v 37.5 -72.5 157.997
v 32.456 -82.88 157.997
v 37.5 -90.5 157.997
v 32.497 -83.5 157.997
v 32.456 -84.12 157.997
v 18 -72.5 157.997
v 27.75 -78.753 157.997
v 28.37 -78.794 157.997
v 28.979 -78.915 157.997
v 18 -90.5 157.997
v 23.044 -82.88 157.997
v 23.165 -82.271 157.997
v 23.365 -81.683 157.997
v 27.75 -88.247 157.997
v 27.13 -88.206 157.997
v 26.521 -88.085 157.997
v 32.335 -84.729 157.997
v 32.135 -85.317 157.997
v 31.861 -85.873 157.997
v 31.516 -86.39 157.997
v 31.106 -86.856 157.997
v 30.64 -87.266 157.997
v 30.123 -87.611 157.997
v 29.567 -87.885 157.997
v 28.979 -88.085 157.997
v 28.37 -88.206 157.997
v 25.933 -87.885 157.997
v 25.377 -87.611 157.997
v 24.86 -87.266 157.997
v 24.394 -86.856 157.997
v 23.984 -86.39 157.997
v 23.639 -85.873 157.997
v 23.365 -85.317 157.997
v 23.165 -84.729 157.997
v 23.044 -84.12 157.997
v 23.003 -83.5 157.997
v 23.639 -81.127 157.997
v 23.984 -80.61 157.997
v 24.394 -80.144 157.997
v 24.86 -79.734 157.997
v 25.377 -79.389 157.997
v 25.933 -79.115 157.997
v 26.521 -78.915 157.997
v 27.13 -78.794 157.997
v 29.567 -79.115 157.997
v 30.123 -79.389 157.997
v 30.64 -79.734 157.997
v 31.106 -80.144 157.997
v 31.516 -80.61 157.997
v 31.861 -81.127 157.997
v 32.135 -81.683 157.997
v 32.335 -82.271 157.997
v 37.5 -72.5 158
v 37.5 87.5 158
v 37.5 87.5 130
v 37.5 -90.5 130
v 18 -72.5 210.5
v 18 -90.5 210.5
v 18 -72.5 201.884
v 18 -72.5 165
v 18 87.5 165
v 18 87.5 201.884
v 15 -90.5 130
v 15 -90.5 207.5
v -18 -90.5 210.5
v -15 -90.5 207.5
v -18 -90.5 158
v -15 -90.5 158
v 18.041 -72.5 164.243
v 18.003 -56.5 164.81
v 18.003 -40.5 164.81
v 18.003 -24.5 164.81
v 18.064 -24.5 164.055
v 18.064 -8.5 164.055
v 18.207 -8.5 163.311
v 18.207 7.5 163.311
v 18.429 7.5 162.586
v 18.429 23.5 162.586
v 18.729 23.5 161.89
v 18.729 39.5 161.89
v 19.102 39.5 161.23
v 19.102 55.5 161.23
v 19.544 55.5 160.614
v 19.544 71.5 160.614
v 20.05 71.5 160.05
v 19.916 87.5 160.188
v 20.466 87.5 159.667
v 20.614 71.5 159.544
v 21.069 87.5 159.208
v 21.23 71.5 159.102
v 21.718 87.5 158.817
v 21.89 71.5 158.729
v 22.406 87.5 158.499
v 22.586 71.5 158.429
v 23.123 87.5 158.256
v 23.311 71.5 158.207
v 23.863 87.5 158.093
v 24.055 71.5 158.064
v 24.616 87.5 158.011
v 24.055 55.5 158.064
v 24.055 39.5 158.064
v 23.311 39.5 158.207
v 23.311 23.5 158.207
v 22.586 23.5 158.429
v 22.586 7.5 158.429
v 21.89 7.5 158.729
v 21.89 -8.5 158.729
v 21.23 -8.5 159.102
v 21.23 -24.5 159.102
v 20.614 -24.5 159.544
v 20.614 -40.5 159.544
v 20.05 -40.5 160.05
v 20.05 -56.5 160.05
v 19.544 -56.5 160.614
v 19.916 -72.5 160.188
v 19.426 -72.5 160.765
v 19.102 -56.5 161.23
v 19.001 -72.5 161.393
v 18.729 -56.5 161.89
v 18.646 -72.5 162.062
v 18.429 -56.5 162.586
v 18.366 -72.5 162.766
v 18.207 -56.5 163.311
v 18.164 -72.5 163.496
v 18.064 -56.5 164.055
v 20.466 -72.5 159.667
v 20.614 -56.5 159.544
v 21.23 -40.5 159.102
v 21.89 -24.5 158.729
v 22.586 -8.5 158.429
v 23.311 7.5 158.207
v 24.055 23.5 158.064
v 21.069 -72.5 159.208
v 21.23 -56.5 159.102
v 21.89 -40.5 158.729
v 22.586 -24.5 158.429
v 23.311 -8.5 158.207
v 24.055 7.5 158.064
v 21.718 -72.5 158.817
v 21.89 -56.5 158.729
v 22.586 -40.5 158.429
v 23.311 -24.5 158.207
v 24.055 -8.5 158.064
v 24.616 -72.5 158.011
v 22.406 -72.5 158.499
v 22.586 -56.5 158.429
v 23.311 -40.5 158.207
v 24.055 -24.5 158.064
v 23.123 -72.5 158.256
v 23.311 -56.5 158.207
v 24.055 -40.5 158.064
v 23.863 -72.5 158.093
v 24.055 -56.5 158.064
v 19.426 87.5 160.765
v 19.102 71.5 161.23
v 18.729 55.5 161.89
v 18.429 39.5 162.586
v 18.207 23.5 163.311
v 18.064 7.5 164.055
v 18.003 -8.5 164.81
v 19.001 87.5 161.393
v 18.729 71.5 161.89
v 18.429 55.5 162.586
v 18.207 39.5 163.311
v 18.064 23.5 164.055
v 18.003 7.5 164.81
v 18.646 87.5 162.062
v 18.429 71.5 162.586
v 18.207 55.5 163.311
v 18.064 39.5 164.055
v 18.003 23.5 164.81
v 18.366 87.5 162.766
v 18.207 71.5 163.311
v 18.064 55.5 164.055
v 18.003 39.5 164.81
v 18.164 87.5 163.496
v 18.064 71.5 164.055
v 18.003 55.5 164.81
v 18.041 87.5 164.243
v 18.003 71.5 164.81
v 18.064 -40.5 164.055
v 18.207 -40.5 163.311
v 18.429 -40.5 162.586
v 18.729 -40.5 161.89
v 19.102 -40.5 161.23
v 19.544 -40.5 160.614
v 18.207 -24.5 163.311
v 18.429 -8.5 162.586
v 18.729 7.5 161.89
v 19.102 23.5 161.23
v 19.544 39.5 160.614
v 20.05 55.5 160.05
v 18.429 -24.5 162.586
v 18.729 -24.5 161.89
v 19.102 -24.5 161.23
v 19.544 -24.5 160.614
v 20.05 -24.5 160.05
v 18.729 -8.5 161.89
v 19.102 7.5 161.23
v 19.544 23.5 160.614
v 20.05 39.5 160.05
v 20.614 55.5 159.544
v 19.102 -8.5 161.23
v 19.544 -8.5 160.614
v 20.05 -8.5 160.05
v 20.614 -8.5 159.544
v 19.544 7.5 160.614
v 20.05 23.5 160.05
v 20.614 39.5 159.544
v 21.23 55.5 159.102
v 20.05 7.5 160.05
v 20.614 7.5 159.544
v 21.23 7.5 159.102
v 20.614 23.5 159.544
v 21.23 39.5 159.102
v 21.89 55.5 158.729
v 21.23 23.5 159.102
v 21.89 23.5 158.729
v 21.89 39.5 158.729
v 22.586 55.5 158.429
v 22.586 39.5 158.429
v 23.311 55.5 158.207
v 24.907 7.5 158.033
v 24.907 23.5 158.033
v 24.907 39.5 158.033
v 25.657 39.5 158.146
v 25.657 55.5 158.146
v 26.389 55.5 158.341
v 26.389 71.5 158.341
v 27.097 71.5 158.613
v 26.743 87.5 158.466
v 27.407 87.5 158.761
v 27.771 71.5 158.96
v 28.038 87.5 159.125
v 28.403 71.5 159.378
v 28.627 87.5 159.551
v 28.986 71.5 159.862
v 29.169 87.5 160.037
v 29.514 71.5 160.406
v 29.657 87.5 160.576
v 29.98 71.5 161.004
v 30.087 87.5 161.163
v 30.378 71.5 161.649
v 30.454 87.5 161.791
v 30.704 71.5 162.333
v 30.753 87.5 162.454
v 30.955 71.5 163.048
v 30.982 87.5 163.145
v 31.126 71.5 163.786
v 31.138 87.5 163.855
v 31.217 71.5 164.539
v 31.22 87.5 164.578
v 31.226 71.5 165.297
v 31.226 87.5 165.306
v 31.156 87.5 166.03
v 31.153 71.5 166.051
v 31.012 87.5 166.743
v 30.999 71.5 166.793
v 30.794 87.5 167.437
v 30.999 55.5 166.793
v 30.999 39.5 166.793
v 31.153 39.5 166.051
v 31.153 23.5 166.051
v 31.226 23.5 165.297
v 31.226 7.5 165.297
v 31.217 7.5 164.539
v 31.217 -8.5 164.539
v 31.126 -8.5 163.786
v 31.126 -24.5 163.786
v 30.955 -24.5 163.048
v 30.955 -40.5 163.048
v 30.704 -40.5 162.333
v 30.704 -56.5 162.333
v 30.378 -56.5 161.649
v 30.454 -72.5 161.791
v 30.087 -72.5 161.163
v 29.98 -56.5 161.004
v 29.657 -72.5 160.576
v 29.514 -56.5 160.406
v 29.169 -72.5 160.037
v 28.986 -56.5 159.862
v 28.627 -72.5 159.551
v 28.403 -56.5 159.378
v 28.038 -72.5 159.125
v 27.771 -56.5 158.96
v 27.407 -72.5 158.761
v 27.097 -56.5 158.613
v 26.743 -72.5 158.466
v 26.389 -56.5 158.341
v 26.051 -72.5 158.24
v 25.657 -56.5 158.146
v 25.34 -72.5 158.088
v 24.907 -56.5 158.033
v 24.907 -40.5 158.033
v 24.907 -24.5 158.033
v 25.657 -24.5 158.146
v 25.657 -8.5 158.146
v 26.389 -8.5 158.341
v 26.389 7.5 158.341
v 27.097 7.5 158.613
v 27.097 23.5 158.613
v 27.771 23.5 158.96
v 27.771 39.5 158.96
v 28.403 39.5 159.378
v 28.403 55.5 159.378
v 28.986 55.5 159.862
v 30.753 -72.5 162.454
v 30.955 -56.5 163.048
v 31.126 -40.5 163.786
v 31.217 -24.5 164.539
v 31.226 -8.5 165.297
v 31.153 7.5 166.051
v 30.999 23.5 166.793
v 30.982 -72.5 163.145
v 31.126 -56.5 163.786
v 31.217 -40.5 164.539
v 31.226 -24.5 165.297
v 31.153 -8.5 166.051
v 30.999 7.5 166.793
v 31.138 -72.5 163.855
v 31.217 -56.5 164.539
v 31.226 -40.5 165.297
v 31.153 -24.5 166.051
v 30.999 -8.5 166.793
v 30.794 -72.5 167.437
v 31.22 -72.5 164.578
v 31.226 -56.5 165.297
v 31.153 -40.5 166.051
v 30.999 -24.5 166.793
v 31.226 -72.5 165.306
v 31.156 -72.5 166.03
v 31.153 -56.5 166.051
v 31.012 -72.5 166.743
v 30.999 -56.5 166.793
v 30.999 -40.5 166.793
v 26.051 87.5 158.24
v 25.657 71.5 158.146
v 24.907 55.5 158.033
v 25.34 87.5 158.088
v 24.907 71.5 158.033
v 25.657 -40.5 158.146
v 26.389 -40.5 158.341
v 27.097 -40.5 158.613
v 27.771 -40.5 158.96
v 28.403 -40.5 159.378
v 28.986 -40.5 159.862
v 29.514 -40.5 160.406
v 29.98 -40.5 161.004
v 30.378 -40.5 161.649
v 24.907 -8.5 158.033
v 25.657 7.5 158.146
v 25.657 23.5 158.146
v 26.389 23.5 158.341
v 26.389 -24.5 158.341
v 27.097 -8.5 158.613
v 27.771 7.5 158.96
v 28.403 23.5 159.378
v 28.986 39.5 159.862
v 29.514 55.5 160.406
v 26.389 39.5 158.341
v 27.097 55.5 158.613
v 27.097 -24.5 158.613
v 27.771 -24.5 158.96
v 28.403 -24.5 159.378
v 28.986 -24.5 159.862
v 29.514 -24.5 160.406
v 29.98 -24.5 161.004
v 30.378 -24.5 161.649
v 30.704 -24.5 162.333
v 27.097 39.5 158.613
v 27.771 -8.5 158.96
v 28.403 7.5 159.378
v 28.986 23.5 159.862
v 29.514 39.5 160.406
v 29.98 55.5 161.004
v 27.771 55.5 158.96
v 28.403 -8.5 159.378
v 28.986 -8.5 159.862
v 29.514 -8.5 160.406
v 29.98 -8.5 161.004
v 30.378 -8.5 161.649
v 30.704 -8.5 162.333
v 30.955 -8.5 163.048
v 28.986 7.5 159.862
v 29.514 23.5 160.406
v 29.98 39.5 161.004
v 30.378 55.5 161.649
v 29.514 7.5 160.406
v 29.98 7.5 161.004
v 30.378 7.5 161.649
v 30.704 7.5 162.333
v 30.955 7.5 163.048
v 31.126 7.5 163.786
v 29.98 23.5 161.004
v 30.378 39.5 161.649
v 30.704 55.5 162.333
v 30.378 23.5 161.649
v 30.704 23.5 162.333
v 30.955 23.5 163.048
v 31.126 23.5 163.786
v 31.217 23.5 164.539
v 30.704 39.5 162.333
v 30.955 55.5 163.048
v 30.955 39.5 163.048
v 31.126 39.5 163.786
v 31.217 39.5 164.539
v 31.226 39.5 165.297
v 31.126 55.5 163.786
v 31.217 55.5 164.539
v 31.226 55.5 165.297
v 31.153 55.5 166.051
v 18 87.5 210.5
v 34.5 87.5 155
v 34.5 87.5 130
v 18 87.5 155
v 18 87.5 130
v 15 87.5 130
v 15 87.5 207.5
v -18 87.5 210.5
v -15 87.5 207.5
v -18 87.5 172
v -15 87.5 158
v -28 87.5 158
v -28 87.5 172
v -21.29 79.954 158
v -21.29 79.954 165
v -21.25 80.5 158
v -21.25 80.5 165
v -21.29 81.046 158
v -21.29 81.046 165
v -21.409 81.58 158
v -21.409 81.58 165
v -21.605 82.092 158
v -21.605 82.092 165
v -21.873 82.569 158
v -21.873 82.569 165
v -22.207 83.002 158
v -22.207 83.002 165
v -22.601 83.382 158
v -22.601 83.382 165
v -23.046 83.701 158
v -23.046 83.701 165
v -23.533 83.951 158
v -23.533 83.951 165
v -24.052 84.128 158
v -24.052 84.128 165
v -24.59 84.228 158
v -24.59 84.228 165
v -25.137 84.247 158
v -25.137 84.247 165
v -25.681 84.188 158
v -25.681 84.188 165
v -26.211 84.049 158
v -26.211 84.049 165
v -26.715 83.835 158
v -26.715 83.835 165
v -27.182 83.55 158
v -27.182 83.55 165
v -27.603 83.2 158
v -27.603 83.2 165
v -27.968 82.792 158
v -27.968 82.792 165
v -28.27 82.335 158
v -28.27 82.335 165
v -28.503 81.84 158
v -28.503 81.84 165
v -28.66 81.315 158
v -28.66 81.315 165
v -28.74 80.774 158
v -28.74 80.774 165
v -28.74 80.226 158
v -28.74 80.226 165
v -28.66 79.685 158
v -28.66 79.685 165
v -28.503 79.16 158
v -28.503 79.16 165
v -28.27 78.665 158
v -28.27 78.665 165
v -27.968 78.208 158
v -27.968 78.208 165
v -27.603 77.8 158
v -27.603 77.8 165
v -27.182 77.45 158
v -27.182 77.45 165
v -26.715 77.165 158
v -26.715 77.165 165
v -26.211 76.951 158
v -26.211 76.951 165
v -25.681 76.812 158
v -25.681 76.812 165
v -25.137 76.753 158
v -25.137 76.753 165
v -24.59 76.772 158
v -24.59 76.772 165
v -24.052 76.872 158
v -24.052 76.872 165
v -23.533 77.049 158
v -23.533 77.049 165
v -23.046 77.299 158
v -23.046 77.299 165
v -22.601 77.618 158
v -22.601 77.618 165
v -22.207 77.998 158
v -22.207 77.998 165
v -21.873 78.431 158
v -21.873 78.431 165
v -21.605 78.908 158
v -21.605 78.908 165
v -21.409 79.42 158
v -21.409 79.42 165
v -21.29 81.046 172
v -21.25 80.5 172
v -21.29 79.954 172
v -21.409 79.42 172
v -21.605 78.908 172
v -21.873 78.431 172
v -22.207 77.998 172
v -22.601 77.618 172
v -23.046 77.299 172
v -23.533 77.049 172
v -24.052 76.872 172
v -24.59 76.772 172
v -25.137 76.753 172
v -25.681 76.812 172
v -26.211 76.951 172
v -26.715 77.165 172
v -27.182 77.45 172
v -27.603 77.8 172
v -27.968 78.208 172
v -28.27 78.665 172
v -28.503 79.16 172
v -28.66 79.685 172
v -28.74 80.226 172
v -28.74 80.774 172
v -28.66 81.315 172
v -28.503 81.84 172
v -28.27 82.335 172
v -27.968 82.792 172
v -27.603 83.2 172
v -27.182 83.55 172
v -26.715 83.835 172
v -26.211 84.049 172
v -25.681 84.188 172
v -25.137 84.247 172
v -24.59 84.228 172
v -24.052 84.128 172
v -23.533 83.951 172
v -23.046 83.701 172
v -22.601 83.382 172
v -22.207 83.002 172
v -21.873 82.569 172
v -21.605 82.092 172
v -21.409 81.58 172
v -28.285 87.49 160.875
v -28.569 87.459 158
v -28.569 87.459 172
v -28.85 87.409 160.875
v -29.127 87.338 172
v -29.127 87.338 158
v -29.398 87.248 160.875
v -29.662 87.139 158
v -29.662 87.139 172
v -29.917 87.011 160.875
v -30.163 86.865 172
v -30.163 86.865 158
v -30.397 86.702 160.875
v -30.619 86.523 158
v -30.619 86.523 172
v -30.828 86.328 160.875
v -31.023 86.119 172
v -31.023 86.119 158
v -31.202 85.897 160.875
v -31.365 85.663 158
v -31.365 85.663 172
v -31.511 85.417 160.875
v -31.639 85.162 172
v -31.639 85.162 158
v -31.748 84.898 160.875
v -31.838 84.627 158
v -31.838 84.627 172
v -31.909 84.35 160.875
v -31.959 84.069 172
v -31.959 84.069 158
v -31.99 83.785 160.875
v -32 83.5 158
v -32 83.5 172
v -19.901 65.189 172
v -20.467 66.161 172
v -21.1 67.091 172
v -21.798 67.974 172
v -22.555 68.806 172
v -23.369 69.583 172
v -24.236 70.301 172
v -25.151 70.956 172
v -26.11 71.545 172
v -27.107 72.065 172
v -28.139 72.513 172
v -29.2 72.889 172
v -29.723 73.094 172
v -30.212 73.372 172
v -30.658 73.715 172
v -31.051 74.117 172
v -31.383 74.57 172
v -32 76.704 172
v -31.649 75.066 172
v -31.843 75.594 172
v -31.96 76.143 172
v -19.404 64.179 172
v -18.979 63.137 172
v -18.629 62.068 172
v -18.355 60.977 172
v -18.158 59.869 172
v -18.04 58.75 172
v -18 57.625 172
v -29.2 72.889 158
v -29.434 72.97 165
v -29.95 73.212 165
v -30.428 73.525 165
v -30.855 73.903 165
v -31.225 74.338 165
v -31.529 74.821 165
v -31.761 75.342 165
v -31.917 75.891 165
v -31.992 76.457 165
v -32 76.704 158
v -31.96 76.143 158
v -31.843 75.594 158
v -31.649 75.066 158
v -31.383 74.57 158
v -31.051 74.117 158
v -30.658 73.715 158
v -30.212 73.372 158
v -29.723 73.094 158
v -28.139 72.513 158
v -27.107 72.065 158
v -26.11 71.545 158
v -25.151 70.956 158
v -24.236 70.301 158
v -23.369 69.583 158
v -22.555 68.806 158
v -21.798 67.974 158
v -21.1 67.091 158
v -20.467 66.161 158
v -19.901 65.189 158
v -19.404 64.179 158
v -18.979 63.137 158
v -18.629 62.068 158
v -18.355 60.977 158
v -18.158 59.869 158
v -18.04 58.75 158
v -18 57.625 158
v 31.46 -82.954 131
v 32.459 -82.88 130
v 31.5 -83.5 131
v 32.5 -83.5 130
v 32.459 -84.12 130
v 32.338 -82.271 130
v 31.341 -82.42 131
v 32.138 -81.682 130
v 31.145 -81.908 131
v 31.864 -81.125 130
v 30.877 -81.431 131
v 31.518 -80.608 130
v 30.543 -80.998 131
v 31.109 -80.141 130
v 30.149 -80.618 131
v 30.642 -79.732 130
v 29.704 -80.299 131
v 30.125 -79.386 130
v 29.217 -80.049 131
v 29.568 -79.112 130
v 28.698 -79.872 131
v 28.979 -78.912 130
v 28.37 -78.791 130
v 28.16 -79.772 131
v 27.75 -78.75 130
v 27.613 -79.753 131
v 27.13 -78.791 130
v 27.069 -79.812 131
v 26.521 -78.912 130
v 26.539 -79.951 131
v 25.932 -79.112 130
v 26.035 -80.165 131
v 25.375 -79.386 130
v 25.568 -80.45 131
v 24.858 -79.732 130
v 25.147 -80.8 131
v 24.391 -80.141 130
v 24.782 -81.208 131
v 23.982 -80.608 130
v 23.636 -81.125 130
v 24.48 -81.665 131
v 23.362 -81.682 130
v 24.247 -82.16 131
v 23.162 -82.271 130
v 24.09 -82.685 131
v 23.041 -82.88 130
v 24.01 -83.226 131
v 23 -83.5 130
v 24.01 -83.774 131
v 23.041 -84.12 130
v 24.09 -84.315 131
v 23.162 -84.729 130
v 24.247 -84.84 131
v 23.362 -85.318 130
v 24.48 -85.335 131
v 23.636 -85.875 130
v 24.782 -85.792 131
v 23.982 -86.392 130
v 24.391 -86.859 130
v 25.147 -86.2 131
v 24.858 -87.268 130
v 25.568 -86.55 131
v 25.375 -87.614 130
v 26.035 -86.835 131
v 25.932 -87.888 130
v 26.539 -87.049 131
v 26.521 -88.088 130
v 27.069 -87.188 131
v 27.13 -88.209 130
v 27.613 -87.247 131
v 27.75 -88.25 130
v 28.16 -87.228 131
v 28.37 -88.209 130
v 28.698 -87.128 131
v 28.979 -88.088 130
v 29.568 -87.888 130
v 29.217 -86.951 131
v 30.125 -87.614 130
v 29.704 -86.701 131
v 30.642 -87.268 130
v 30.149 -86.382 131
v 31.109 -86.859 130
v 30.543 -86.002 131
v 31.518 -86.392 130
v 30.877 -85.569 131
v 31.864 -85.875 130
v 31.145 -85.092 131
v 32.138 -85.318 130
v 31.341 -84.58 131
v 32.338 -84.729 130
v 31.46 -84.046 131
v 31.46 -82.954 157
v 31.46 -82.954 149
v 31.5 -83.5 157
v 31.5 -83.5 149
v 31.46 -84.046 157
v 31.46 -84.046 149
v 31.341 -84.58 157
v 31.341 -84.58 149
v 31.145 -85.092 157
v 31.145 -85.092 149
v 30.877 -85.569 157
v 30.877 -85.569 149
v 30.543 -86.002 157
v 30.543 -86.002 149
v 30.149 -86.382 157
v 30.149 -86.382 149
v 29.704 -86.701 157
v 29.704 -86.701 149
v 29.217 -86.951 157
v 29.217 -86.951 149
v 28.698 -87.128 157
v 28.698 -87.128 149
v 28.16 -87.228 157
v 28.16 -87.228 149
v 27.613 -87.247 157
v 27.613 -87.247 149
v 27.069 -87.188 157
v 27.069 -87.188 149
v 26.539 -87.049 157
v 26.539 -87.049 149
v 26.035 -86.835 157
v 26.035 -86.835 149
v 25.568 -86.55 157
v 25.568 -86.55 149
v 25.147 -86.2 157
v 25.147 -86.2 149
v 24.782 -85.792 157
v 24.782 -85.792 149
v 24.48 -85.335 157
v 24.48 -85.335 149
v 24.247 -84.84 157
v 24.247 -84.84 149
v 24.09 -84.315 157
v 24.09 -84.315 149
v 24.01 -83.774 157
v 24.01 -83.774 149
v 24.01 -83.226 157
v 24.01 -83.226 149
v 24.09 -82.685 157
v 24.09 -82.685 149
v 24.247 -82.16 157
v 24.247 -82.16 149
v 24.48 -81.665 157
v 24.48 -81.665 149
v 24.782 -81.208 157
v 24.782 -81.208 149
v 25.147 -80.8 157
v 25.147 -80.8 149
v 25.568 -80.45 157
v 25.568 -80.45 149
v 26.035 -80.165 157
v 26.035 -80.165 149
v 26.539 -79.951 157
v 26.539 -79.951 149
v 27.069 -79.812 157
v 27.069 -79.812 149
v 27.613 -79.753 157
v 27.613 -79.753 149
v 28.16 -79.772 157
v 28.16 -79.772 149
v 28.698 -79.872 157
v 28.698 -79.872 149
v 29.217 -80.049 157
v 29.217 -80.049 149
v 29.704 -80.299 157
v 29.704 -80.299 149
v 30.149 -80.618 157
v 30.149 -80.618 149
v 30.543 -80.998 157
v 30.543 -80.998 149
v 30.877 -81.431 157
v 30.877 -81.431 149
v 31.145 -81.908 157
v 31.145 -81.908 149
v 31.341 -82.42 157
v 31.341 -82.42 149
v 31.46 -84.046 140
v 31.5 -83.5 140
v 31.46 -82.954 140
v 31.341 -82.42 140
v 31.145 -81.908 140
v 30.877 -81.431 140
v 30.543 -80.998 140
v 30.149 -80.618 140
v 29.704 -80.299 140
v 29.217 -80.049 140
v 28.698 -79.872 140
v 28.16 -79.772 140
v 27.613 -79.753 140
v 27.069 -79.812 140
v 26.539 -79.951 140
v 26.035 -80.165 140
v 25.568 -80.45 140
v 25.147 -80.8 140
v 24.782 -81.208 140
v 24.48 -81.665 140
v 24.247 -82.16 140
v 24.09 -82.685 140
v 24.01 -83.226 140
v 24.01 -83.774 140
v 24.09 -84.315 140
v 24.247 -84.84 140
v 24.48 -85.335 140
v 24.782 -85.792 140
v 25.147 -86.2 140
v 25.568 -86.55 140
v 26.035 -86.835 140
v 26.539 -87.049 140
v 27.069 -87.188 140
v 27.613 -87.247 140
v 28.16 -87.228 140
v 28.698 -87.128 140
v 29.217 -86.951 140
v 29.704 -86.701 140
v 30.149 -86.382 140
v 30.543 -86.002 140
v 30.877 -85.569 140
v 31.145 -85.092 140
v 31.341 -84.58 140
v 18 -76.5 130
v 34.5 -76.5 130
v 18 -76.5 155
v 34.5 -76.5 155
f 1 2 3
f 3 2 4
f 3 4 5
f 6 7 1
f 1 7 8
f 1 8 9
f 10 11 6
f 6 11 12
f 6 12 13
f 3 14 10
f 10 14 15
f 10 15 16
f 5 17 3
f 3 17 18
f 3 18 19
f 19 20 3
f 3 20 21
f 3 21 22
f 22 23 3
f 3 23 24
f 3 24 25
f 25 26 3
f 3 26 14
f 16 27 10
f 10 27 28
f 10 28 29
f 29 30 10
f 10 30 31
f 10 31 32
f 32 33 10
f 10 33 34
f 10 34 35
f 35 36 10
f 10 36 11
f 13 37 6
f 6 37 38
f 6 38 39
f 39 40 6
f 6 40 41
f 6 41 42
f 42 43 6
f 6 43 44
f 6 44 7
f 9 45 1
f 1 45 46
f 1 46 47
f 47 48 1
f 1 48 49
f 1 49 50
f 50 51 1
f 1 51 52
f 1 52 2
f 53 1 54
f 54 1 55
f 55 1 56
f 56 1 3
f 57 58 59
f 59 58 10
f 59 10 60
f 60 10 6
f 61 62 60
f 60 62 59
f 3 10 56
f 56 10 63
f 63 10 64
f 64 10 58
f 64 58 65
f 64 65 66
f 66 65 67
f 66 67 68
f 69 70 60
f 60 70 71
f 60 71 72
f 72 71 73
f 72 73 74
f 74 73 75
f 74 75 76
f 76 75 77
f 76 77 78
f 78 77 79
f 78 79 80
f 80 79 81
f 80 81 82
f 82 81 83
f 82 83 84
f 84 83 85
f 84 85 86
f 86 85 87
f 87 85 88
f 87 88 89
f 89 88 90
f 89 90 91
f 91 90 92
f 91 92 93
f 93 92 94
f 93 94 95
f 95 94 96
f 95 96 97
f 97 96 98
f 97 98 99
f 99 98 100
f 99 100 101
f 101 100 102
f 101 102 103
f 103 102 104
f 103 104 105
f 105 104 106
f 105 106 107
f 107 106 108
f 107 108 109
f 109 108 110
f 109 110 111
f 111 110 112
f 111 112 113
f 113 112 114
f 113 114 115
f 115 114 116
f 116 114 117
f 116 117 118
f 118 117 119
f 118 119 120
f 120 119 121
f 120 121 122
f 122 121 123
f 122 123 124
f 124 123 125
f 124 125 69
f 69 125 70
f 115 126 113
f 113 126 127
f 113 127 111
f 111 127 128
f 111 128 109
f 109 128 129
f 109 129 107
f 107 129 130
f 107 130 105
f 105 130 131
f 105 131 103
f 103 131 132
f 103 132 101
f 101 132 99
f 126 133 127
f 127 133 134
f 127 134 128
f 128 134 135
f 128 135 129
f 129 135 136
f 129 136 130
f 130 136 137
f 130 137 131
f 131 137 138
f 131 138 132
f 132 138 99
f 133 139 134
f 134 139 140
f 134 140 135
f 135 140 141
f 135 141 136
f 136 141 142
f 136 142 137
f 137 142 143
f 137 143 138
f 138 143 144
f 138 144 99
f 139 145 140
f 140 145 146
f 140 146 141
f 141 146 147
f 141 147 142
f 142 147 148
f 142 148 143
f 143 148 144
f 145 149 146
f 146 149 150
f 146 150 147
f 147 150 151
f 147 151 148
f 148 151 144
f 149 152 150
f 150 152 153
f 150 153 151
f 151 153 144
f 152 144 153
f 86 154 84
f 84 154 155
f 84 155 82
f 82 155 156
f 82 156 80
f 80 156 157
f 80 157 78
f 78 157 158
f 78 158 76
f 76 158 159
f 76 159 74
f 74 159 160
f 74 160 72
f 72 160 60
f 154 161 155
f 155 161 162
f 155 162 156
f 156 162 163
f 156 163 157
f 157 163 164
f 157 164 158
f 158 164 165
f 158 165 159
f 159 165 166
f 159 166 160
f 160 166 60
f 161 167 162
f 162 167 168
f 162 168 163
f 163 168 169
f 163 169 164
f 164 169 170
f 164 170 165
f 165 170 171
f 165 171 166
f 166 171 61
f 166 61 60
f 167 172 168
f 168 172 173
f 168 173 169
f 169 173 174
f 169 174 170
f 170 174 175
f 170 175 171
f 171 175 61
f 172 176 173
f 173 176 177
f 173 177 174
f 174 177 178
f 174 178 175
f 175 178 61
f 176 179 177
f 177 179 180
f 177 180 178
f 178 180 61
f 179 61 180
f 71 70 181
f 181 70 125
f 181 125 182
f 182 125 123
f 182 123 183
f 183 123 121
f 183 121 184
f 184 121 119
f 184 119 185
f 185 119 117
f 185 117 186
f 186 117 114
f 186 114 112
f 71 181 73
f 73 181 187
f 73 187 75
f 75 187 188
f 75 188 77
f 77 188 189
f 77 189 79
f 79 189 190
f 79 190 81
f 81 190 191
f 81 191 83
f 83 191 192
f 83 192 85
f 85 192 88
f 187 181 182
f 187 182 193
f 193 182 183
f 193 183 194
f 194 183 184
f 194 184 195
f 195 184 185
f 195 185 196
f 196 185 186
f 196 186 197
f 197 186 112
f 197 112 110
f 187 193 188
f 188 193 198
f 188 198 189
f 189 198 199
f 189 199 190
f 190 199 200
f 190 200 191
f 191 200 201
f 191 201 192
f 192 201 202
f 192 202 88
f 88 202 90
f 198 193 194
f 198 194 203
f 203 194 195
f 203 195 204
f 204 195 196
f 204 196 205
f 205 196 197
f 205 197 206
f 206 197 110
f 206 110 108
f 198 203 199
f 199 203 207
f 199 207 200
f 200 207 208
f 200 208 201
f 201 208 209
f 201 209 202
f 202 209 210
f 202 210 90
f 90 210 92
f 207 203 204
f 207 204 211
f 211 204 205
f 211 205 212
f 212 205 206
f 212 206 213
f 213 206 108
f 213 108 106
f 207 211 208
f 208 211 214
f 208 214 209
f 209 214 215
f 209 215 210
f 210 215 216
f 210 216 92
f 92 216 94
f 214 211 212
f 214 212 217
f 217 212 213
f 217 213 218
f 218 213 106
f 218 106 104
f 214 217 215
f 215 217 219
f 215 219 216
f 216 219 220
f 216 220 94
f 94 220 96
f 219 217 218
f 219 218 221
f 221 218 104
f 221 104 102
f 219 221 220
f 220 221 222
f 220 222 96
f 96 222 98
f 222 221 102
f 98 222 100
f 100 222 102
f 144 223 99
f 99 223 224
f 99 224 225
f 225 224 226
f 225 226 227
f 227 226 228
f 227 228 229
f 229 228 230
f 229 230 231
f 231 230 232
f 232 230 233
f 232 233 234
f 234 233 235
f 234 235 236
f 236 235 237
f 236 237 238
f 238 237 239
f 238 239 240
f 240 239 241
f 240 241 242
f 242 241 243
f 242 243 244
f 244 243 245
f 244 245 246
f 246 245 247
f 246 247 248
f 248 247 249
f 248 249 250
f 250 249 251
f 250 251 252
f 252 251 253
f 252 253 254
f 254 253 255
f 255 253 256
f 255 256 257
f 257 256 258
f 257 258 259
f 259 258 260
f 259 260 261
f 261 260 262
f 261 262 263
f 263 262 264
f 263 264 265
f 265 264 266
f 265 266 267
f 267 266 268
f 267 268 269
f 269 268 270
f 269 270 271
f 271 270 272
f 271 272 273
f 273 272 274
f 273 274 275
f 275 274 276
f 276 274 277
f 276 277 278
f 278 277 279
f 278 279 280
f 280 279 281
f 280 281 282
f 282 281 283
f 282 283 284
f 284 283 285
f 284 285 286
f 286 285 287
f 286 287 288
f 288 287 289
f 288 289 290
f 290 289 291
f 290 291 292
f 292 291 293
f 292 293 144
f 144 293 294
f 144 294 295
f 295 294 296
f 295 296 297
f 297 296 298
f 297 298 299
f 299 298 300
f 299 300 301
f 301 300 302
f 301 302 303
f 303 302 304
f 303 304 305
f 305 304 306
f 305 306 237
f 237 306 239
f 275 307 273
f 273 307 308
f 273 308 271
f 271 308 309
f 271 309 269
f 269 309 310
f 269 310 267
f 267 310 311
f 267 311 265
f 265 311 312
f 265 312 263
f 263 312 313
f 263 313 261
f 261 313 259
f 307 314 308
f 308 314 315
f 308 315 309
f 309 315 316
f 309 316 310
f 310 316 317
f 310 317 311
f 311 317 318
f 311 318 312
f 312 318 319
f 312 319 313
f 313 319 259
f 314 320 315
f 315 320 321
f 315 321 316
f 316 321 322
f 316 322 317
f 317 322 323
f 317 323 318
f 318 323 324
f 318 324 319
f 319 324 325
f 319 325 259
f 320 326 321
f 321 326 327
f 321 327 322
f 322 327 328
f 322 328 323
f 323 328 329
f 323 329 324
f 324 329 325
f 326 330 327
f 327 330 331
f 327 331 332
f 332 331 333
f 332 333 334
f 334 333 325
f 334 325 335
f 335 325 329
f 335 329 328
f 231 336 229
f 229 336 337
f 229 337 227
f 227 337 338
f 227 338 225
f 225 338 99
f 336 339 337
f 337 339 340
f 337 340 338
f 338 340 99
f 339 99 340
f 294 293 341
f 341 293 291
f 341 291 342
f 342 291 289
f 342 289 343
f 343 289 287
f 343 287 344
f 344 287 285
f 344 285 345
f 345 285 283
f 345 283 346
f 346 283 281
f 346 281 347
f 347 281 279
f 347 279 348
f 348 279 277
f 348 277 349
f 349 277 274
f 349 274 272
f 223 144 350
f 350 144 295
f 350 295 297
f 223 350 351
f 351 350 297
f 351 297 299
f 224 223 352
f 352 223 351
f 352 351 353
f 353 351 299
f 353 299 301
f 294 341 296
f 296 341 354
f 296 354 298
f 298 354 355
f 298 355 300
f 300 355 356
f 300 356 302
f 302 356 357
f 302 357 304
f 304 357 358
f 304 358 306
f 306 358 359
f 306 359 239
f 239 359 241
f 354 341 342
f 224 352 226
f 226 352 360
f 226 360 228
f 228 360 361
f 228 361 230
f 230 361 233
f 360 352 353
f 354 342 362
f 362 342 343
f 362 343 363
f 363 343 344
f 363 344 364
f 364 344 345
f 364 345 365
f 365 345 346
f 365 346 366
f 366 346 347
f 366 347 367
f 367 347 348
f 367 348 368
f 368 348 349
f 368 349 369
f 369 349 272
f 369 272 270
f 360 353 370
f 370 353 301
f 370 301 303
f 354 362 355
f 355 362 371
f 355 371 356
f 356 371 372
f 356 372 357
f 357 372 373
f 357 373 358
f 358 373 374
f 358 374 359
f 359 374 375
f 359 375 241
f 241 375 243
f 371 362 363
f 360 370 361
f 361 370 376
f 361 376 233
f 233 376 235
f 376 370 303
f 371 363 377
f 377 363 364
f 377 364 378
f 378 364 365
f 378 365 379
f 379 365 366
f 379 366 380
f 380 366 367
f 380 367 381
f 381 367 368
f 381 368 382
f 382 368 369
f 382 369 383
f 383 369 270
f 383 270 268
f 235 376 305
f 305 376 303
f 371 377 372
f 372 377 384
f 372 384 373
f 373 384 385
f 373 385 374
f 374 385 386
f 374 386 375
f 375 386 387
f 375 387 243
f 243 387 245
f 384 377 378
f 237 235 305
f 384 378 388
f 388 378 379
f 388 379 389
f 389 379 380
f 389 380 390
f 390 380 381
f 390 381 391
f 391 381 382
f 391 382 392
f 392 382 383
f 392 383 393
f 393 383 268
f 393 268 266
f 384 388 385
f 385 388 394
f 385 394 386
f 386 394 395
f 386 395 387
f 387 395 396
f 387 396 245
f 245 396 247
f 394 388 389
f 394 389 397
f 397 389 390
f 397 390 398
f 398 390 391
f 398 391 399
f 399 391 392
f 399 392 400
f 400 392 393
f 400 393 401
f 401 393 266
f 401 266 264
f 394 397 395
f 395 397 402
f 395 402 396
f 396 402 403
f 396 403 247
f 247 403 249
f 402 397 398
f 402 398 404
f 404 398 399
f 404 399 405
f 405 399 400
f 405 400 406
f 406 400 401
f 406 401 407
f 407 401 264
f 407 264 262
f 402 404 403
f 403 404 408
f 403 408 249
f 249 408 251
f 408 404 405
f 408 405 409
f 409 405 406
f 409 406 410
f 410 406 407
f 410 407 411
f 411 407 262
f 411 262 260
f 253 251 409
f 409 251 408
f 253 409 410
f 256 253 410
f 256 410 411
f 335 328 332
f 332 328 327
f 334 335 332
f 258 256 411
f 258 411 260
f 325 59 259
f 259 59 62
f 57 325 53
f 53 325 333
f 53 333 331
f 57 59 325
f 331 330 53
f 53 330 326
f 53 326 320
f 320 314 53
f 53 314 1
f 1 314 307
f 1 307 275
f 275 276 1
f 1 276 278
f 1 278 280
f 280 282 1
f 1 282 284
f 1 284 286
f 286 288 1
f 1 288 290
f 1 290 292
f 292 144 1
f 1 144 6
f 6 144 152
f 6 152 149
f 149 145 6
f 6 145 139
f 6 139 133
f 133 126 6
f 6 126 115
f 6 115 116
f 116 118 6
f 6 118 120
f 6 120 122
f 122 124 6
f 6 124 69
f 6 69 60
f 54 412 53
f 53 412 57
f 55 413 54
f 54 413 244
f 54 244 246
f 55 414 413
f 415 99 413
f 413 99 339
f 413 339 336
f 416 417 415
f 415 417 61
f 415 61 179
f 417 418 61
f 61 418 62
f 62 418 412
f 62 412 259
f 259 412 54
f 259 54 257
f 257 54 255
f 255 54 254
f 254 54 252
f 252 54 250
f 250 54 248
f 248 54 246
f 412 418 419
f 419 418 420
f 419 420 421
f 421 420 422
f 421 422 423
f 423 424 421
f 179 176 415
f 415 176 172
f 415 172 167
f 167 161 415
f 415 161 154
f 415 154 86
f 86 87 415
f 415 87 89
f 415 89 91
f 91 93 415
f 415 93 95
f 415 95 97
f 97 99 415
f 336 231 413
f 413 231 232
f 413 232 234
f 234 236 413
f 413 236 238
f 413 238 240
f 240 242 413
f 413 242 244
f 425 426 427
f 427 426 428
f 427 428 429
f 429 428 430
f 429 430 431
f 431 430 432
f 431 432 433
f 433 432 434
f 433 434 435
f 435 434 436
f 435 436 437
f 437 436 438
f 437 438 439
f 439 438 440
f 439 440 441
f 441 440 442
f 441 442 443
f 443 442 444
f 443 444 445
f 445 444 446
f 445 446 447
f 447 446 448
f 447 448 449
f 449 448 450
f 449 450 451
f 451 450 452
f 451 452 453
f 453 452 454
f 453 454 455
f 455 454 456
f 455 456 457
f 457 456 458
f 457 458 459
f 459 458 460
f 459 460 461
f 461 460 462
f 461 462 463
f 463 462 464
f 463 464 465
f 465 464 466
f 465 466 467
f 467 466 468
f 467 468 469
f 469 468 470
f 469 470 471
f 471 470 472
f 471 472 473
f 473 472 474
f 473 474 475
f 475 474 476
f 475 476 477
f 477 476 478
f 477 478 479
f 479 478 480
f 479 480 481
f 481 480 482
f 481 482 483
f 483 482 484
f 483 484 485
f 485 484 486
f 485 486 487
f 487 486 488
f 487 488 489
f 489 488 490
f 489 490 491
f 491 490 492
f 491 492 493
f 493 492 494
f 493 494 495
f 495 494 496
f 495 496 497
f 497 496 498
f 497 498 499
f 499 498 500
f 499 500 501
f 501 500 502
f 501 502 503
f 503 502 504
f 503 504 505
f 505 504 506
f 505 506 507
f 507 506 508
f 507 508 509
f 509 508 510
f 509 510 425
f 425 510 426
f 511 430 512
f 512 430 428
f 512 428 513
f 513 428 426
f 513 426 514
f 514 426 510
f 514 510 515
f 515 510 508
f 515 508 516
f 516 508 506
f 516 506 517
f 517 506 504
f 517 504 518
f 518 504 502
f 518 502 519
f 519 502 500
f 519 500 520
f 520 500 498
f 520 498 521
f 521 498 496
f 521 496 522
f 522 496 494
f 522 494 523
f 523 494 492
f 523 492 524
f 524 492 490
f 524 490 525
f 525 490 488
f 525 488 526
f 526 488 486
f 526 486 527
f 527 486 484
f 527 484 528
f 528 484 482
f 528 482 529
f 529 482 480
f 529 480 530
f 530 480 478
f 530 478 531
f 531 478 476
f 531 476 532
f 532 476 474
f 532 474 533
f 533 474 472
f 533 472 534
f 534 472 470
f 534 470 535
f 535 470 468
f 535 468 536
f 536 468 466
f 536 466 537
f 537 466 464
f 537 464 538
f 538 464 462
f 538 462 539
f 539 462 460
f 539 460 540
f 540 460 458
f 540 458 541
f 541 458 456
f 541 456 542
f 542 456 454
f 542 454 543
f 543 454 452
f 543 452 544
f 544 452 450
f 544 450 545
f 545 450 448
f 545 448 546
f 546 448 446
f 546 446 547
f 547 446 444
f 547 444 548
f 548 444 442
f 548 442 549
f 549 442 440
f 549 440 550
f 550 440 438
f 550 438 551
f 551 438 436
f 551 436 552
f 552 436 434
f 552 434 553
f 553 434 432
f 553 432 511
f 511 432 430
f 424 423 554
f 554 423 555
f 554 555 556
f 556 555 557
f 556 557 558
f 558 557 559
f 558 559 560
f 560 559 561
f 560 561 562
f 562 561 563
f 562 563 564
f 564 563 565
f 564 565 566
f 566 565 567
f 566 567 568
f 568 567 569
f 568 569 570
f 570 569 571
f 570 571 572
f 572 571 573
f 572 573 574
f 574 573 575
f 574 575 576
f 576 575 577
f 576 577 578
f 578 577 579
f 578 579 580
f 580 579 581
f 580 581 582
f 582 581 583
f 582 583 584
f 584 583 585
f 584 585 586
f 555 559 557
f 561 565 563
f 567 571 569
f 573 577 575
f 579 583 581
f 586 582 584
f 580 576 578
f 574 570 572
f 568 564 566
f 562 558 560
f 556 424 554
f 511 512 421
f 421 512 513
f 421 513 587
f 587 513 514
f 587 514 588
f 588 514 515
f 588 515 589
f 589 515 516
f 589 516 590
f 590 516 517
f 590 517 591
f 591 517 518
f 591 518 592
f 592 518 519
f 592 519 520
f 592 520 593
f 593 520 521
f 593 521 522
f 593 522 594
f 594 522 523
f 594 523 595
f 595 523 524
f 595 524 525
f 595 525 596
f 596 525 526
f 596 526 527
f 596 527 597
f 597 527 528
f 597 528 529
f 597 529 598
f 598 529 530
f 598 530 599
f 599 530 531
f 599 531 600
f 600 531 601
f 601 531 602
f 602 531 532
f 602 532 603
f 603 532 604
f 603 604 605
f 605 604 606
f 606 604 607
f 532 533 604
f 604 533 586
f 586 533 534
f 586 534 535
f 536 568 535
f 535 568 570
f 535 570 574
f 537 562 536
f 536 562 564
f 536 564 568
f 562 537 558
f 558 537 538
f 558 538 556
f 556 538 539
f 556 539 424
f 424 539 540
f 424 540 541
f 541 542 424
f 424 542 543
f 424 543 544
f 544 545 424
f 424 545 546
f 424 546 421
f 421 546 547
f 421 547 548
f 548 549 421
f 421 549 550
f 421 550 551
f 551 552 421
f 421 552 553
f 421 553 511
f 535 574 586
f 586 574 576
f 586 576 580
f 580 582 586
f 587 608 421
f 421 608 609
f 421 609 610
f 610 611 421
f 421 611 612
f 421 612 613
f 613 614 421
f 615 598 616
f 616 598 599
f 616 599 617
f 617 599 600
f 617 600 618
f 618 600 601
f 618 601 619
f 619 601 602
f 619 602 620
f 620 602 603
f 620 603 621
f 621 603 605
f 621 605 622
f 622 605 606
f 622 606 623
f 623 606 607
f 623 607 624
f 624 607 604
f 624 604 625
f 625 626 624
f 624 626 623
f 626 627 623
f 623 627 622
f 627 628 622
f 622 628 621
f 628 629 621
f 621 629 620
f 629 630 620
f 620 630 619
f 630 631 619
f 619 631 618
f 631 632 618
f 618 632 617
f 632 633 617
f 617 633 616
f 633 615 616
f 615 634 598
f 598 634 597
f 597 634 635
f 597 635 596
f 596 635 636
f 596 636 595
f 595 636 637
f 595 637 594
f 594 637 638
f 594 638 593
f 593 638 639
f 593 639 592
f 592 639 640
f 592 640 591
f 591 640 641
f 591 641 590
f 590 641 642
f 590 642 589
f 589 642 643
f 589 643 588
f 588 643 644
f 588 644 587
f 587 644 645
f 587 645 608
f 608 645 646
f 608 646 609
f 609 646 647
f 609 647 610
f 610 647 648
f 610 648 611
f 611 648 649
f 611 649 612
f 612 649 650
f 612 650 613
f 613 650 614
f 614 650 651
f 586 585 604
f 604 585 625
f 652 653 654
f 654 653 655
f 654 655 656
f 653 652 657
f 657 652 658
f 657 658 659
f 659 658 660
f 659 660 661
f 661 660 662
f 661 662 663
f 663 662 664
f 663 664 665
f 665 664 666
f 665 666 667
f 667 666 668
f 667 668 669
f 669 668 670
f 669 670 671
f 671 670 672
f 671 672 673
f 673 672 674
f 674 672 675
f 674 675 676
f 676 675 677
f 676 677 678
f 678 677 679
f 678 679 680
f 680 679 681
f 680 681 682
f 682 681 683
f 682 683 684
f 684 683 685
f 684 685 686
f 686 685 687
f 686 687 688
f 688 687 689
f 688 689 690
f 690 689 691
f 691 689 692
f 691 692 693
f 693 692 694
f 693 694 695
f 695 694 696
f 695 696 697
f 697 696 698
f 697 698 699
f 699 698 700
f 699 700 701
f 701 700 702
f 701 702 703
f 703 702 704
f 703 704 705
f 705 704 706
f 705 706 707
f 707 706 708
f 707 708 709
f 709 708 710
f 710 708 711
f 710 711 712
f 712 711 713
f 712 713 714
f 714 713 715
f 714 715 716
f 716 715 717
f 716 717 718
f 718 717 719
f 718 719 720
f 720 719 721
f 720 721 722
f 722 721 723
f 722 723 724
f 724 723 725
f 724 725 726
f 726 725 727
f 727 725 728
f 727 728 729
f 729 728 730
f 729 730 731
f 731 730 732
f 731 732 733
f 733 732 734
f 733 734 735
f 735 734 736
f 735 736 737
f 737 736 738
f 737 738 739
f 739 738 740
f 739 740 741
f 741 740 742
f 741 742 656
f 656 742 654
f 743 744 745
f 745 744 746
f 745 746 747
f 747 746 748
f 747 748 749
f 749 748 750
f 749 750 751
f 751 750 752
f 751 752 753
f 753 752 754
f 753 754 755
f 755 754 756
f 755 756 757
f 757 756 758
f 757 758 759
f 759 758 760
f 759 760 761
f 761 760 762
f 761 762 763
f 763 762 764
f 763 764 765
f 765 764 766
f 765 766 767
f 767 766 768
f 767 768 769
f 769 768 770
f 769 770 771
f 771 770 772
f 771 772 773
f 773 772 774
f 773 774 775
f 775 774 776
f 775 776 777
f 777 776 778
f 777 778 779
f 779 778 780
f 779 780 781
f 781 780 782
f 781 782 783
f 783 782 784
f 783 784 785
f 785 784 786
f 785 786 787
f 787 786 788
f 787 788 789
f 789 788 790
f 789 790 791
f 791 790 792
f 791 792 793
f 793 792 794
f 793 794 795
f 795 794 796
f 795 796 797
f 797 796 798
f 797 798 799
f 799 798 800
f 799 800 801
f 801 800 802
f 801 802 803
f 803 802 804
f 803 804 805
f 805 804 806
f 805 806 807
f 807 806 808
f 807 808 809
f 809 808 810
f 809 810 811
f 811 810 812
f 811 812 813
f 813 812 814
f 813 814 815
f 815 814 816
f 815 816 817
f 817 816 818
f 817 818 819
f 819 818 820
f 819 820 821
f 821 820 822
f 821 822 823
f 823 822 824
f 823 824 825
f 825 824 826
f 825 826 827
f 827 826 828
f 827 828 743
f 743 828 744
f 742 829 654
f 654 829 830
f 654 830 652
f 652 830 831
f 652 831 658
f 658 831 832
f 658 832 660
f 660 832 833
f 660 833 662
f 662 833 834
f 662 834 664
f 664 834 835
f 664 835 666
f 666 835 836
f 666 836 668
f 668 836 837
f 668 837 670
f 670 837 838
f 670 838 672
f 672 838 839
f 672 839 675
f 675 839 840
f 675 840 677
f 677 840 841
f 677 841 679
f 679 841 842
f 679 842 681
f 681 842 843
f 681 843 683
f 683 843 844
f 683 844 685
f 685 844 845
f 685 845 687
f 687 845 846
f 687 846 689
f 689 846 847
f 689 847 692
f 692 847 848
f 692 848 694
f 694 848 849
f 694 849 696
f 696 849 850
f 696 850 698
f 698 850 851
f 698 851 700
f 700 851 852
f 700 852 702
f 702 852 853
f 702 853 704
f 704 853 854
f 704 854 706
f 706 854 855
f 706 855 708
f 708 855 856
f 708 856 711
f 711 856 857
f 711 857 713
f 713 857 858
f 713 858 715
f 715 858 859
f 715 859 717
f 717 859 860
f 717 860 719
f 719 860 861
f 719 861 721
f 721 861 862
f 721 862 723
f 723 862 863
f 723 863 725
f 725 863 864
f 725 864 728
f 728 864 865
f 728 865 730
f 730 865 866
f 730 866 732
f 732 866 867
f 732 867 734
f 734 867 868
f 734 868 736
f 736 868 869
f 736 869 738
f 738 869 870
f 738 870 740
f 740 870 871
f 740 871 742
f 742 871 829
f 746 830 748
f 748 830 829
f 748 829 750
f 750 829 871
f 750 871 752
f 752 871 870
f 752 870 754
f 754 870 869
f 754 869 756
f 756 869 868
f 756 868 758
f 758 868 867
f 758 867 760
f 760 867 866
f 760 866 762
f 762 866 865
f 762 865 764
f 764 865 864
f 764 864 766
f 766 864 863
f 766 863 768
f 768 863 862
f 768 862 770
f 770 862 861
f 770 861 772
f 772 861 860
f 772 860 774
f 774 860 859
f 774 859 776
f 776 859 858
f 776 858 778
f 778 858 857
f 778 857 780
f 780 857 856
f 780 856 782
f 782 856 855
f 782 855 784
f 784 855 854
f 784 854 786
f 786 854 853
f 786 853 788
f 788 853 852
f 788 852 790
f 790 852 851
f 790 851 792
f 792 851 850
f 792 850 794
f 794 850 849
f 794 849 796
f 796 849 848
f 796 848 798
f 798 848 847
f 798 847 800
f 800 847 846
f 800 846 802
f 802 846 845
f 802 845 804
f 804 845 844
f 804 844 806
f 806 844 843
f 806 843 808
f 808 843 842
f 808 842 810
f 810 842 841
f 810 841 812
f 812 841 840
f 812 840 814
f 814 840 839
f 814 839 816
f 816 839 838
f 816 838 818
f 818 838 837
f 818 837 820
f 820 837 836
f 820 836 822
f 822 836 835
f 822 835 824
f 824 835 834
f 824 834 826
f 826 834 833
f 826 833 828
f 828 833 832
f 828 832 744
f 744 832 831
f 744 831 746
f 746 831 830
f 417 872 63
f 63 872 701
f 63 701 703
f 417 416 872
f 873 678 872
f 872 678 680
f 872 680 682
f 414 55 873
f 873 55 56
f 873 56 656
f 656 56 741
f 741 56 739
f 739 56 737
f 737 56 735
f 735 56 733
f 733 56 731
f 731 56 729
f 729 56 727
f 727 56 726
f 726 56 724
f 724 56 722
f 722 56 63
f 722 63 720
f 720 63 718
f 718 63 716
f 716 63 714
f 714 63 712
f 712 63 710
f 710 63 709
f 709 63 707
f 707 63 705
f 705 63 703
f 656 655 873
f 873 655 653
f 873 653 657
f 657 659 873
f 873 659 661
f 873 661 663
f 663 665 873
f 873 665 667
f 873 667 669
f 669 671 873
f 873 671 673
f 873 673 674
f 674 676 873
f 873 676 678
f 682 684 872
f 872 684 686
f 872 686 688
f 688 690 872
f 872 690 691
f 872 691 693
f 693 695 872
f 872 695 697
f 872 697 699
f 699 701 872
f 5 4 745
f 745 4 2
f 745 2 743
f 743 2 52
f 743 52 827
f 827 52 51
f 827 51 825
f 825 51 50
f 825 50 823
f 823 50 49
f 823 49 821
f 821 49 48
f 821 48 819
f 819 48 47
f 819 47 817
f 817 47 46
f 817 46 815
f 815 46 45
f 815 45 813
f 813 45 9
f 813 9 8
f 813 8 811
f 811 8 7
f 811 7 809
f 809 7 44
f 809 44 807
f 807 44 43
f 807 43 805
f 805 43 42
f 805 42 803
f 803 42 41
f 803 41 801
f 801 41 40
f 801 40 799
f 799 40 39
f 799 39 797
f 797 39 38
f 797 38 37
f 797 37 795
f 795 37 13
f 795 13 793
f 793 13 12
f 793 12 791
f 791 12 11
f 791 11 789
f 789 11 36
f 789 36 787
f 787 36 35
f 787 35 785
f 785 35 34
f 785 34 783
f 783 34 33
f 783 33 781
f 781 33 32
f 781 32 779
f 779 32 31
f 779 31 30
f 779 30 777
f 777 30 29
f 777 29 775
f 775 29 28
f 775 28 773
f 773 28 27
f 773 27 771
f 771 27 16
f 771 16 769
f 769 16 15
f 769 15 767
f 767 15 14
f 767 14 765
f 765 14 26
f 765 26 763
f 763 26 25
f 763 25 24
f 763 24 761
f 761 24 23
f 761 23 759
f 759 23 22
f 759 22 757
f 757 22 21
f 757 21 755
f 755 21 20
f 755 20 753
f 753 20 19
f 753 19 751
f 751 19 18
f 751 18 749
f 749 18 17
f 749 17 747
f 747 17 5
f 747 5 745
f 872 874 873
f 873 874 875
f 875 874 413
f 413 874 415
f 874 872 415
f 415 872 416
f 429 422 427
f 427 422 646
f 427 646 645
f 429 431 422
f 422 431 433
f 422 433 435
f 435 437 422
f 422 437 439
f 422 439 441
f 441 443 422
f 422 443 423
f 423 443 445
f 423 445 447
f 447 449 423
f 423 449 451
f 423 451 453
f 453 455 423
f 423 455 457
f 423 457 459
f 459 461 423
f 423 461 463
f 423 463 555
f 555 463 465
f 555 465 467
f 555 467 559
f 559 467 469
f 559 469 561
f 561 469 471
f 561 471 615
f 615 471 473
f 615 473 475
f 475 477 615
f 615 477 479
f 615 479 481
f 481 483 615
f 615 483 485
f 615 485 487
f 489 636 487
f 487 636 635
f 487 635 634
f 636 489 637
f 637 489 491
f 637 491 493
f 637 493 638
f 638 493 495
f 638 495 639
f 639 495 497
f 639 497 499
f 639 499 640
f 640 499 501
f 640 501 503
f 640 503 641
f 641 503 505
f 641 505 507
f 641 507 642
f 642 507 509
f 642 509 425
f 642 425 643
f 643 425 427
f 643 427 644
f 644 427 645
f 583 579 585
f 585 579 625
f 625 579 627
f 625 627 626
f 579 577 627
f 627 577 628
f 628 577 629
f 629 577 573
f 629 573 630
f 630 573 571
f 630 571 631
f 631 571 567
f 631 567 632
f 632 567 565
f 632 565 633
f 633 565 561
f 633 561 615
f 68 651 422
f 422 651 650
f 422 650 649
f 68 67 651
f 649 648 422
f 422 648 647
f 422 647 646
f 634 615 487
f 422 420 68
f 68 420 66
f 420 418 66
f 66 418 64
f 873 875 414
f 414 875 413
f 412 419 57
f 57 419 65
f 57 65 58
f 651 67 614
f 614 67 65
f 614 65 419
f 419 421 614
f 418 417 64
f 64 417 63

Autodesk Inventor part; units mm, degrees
ref_plane "YZ Plane" through (0, 0, 0) normal (1, 0, 0) x (0, 1, 0)
ref_plane "XZ Plane" through (0, 0, 0) normal (0, 1, 0) x (-1, 0, 0)
ref_plane "XY Plane" through (0, 0, 0) normal (0, 0, 1) x (1, 0, 0)
sketch "Skizze1" plane through (0, 0, 0) normal (0, 0, 1) x (1, 0, 0)
  line L0 (-26.25, -95) -> (26.25, -95)
  line L1 (26.25, -95) -> (26.25, 95)
  line L2 (26.25, 95) -> (-26.25, 95)
  line L3 (-26.25, 95) -> (-26.25, -95)
  line L4 (-38.4, 0) -> (46.65, 0) projected
  line L5 (0, -140.5) -> (0, 178) projected
  dimension "d0" = 52.5
  dimension "d1" = 190
sketch "Skizze2" plane through (0, 0, 0) normal (0, 1, 0) x (-1, 0, 0)
  line L0 (39, 0) -> (-50.25, 0) projected
  line L1 (0, -228.1) -> (0, 283.6) projected
  line L2 (18, 158) -> (18, 210.5)
  line L3 (18, 210.5) -> (-18, 210.5)
  line L4 (-18, 210.5) -> (-18, 158)
  line L5 (-18, 158) -> (-37.5, 158)
  line L6 (-37.5, 158) -> (-37.5, 130)
  line L7 (-37.5, 130) -> (-34.5, 130)
  line L8 (-34.5, 130) -> (-34.5, 155)
  line L9 (-34.5, 155) -> (-15, 155)
  line L10 (-15, 155) -> (-15, 207.5)
  line L11 (-15, 207.5) -> (15, 207.5)
  line L12 (15, 207.5) -> (15, 158)
  line L13 (15, 158) -> (18, 158)
  line L14 (-15, 155) -> (-18, 155)
  line L15 (-18, 155) -> (-18, 130)
  line L16 (-18, 130) -> (-15, 130)
  line L17 (-15, 130) -> (-15, 155)
  point P0 (0, 0)
  dimension "d2" = 3
  dimension "d3" = 3
  dimension "d4" = 3
  dimension "d5" = 3
  dimension "d6" = 3
  dimension "d7" = 30
  dimension "d8" = 19.5
  dimension "d9" = 77.5
  dimension "d10" = 25
  dimension "d11" = 207.5
extrude "Extrusion1" add sketch "Skizze2" along normal mid plane 175
sketch "Skizze3" plane through (0, -87.5, 0) normal (0, -1, 0) x (1, 0, 0)
  line L0 (-18, 210.5) -> (-18, 158) projected
  line L1 (-18, 158) -> (-15, 158) projected
  line L2 (-15, 158) -> (-15, 207.5) projected
  line L3 (-15, 207.5) -> (15, 207.5) projected
  line L4 (15, 207.5) -> (15, 130) projected
  line L5 (18, 155) -> (34.5, 155) projected
  line L6 (34.5, 155) -> (34.5, 130) projected
  line L7 (34.5, 130) -> (37.5, 130) projected
  line L8 (37.5, 130) -> (37.5, 158) projected
  line L9 (37.5, 158) -> (18, 158) projected
  line L10 (18, 158) -> (18, 210.5) projected
  line L11 (18, 210.5) -> (-18, 210.5) projected
  line L12 (34.5, 130) -> (34.5, 155) projected
  line L13 (34.5, 155) -> (15, 155)
  line L14 (15, 155) -> (15, 130)
  line L15 (15, 130) -> (34.5, 130)
  line L16 (34.5, 130) -> (34.5, 155)
  line L17 (15, 130) -> (18, 130) projected
  line L18 (18, 130) -> (18, 155) projected
  line L19 (15, 130) -> (15, 207.5) projected
extrude "Extrusion2" add sketch "Skizze3" along normal blind 3
sketch "Skizze8" plane through (0, -87.5, 0) normal (0, 1, 0) x (1, 0, 0)
  line L0 (18, -130) -> (18, -155) projected
  line L1 (18, -155) -> (34.5, -155) projected
  line L2 (34.5, -155) -> (34.5, -130) projected
  line L3 (18, -130) -> (34.5, -130) projected
extrude "Extrusion5" add sketch "Skizze8" along normal blind 11
sketch "Skizze9" plane through (18, 87.5, 158) normal (0, 0, 1) x (1, 0, 0)
  circle A0 centre (9.75, -171) radius 3.75
  line L0 (19.5, 0) -> (19.5, -178) construction
  line L1 (0, 0) -> (19.5, 0) projected
  line L2 (0, 0) -> (0, -178) construction
  line L3 (19.5, -178) -> (0, -178) construction
  line L4 (16.5, -164) -> (0, -164) construction
  line L5 (0, -164) -> (19.5, -164) construction
  line L6 (19.5, -164) -> (19.5, -178) construction
  line L7 (19.5, -178) -> (0, -178) construction
  line L8 (0, -178) -> (0, -164) construction
  line L9 (0, 0) -> (0, -178) projected
  line L10 (0, -178) -> (19.5, -164) construction
  line L11 (0, -164) -> (19.5, -178) construction
  dimension "d34" = 7.5
extrude "Extrusion6" cut sketch "Skizze9" against normal through all
chamfer "Fase1" distance 1 angle 45 2 edges at (24, -83.5, 158) (24, -83.5, 130)
sketch "Skizze10" plane through (-18, 87.5, 158) normal (-1, 0, 0) x (0, 0, 1)
  line L0 (0, 0) -> (52.5, 0) projected
  line L1 (52.5, -178) -> (52.5, 0) projected
  line L2 (0, 0) -> (52.5, 0) projected
  line L3 (0, 0) -> (0, -178) projected
  line L4 (52.5, -178) -> (0, -178) projected
  line L5 (0, 0) -> (14, 0)
  line L6 (14, 0) -> (14, -14)
  line L7 (14, -14) -> (0, -14)
  line L8 (0, -14) -> (0, 0)
  dimension "d40" = 14
  dimension "d41" = 14
extrude "Extrusion7" add sketch "Skizze10" along normal blind 14 contours L0 L6 L7 L3
fillet "Rundung2" radius 16 1 edges at (-18, 73.5, 165)
fillet "Rundung2" radius 4 1 edges at (-32, 73.5, 165)
fillet "Rundung2" radius 4 1 edges at (-32, 87.5, 165)
sketch "Skizze11" plane through (-32, 87.5, 172) normal (0, 0, 1) x (1, 0, 0)
  circle A0 centre (7, -7) radius 7
  arc A1 (0, -10.7957) -> (2.8, -14.6115) centre (4, -10.7957) ccw projected
  arc A2 (14, -29.8745) -> (2.8, -14.6115) centre (-2, -29.8745) ccw projected
  line L0 (14, 0) -> (14, -29.8745) projected
  line L1 (14, 0) -> (4, 0) projected
  line L2 (0, -10.7957) -> (0, -4) projected
  line L3 (14, 0) -> (4, 0) projected
  line L4 (0, -10.7957) -> (0, -4) projected
  circle A3 centre (7, -7) radius 3.75
  arc A4 (4, 0) -> (0, -4) centre (4, -4) ccw projected
  point P0 (0, 0)
  dimension "d46" = 7
  dimension "d47" = 7.5
extrude "Extrusion8" cut sketch "Skizze11" against normal through all contours A3
sketch "Skizze4" plane through (34.5, 87.5, 130) normal (-1, 0, 0) x (0, 0, 1)
  line L0 (25, 0) -> (25, -175) projected
  line L1 (25, -175) -> (-285, -175)
  line L2 (-285, -175) -> (-285, 45)
  line L3 (-285, 45) -> (25, 45)
  line L4 (25, 45) -> (25, -175)
  dimension "d16" = 310
  dimension "d17" = 220
sketch "Skizze5" plane through (-18, 87.5, 158) normal (-1, 0, 0) x (0, 0, 1)
  line L0 (6, -5) -> (46.5, -5) construction
  line L1 (6, -2.75) -> (46.5, -2.75)
  line L2 (46.5, -7.25) -> (6, -7.25)
  arc A0 (6, -2.75) -> (6, -7.25) centre (6, -5) ccw
  arc A1 (46.5, -7.25) -> (46.5, -2.75) centre (46.5, -5) ccw
  line L3 (-313, 45) -> (-3, 45) projected
  line L4 (0, 0) -> (0, -178) projected
  line L5 (52.5, -178) -> (52.5, 0) projected
  point P0 (26.25, -5)
  dimension "d18" = 4.5
  dimension "d19" = 50
  dimension "d20" = 6
  dimension "d21" = 6
extrude "Extrusion3" [suppressed]
pattern_linear "Rechteckige Anordnung1" [suppressed]
sketch "Skizze13" plane through (0, 87.5, 0) normal (0, 1, 0) x (1, 0, 0)
  line L0 (37.5, -158) -> (37.5, -130) projected
  line L1 (37.5, -158) -> (18, -210.5)
  line L2 (18, -210.5) -> (15.1877, -209.4554)
  line L3 (15.1877, -209.4554) -> (34.6877, -156.9554)
  line L4 (34.6877, -156.9554) -> (37.5, -158)
  line L5 (18, -210.5) -> (18, -158) projected
  line L6 (15, -130) -> (15, -207.5) projected
  dimension "d51" = 3
  dimension "d52" = 3
extrude "Extrusion9" add sketch "Skizze13" against normal blind 160
fillet "Rundung3" radius 7 2 edges at (34.2997, 7.5, 158) (18, -1.5, 158)
sketch "Skizze14" plane through (0, -90.5, 0) normal (0, -1, 0) x (1, 0, 0)
  line L0 (18, 201.8839) -> (18, 165) projected
  line L1 (37.5013, 157.9968) -> (18, 157.9968)
  line L2 (18, 157.9968) -> (18, 175.3621)
  line L3 (18, 175.3621) -> (37.5013, 175.3621)
  line L4 (37.5013, 175.3621) -> (37.5013, 157.9968)
extrude "Extrusion10" cut sketch "Skizze14" against normal up to surface (18 mm away)
equation "\"d0\" = -0.5 * BreiteTablet + 0.5 * BreitePanel"
equation "\"d2\" = Materialstaerke"
equation "\"d3\" = d2"
equation "\"d4\" = d3"
equation "\"d5\" = d2"
equation "\"d6\" = d5"
equation "\"d7\" = DickePanel"
equation "\"d8\" = DickeTablet + Materialstaerke"
equation "\"d9\" = 0.5 * BreitePanel - 0.5 * BreiteTablet + BreiteRahmenTabletScreen"
equation "\"d10\" = BreiteRahmenTabletScreen"
equation "\"d11\" = 0.5 * BreitePanel"
equation "\"d14\" = Materialstaerke"
equation "\"d41\" = d40"
equation "\"d16\" = BreiteTablet"
equation "\"d17\" = HöheTablet"
equation "\"d18\" = DurchmesserLoch"
equation "\"d19\" = VersatzSchraubeOberkanteTB"
equation "\"d20\" = 2 * Materialstaerke"
equation "\"d21\" = 2 * Materialstaerke"
equation "\"d22\" = Materialstaerke"
equation "\"d26\" = AbstandLochbild"
equation "\"d52\" = d51"
equation "\"BreiteTablet\" = 310"
equation "\"HöheTablet\" = 220"
equation "\"DickeTablet\" = 16.5"
equation "\"BreitePanel\" = 415"
equation "\"DickePanel\" = 30"
equation "\"AbstandLochbild\" = 150"
equation "\"DurchmesserLoch\" = 4.5"
equation "\"VersatzSchraubeOberkanteTB\" = 50"
equation "\"Materialstaerke\" = 3"
equation "\"BreiteRahmenTabletScreen\" = 25"
properties part number "AufnahmeLinks"
